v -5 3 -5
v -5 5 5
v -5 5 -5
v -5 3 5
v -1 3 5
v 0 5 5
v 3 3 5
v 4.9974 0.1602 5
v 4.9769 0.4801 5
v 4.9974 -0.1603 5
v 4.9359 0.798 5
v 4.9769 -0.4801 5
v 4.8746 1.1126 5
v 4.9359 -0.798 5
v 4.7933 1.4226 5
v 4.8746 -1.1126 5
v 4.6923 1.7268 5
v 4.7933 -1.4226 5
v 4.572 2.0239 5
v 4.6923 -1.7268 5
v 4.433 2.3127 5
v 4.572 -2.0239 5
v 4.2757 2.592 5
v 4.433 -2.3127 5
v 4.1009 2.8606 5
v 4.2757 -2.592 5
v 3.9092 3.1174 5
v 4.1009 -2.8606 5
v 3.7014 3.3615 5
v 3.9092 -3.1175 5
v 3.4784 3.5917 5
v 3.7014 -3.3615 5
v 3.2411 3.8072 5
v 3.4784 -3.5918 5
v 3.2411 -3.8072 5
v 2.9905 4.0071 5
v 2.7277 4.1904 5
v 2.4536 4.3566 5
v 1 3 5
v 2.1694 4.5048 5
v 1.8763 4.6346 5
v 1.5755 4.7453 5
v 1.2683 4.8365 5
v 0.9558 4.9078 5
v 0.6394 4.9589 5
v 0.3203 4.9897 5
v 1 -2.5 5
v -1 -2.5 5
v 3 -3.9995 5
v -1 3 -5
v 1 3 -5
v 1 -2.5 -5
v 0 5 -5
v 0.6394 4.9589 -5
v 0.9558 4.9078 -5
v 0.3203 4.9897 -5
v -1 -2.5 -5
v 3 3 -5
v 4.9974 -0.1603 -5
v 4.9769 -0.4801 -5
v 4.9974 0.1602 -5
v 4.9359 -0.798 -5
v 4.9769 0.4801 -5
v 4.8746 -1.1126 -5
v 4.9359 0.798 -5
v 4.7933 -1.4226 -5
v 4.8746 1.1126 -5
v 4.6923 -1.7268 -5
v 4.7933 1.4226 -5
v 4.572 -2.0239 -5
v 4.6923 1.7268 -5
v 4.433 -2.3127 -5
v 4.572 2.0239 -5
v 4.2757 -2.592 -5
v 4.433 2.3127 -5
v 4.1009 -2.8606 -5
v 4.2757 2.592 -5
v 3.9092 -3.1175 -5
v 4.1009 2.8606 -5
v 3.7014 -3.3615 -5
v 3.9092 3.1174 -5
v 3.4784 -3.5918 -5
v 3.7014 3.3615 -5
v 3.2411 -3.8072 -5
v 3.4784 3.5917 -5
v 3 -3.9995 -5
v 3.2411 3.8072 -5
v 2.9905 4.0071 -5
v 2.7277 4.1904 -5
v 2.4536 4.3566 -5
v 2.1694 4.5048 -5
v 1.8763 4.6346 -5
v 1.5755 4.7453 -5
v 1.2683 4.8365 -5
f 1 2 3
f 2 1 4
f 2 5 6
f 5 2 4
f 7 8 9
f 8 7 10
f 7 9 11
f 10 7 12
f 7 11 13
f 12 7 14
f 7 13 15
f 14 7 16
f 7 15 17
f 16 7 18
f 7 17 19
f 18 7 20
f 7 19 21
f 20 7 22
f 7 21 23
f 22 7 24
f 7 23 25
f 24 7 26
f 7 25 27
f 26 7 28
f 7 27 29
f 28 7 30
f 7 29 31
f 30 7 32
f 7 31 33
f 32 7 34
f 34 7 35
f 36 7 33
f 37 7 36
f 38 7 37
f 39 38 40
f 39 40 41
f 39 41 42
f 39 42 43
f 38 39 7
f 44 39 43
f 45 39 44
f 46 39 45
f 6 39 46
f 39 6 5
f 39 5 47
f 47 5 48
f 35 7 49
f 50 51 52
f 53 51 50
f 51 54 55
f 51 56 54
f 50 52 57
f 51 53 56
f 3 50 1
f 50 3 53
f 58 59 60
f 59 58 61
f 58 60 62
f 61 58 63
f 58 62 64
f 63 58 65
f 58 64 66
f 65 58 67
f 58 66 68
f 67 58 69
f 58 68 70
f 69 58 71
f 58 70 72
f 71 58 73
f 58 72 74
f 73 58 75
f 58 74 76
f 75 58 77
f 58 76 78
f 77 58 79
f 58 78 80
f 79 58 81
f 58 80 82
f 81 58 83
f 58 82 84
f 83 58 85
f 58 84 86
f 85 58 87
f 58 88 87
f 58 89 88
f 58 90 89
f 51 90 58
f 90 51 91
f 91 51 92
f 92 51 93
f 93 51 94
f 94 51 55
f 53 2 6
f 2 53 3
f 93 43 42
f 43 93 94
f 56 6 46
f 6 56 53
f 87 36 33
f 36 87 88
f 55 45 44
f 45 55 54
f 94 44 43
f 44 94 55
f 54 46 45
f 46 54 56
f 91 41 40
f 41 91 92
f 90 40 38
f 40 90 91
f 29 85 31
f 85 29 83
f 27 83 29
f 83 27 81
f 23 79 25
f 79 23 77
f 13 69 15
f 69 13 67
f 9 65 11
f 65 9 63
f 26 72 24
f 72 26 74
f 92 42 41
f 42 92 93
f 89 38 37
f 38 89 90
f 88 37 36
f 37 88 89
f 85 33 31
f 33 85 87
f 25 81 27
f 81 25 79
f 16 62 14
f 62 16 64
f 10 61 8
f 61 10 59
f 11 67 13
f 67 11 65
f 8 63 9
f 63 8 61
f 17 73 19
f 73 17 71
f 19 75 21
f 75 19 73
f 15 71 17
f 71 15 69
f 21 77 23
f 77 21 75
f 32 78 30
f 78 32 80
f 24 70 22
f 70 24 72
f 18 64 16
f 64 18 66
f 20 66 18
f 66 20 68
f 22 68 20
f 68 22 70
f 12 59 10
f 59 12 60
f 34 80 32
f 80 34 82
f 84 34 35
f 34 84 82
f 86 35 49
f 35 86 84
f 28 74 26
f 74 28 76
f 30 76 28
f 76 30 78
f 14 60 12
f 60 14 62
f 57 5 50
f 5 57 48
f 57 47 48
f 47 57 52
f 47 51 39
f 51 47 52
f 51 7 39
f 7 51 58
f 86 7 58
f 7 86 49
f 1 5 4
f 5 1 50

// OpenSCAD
// Generated by SolidPython 1.1.3 on 2025-02-20 04:04:07
$fn=50;


intersection() {
	translate(v = [-5.0000000000, -5.0000000000, -5.0000000000]) {
		linear_extrude(height = 10) {
			polygon(points = [[5.0000000000, 10.0000000000], [5.3203510999, 9.9897269638], [5.6393858084, 9.9589500691], [5.9557931435, 9.9077957850], [6.2682729195, 9.8364743152], [6.5755410901, 9.7452787351], [6.8763350244, 9.6345837867], [7.1694186956, 9.5048443395], [7.4535877600, 9.3565935206], [7.7276745061, 9.1904405245], [7.9905526525, 9.0070681093], [8.2411419765, 8.8072297918], [8.4784127530, 8.5917467505], [8.7013899854, 8.3615044513], [8.9091574123, 8.1174490093], [9.1008612730, 7.8605833006], [9.2757138150, 7.5919628416], [9.4329965319, 7.3126914512], [9.5720631151, 7.0239167156], [9.6923421102, 6.7268252721], [9.7933392652, 6.4226379332], [9.8746395609, 6.1126046698], [9.9359089171, 5.7979994752], [9.9768955647, 5.4801151295], [9.9974310810, 5.1602578879], [9.9974310810, 4.8397421121], [9.9768955647, 4.5198848705], [9.9359089171, 4.2020005248], [9.8746395609, 3.8873953302], [9.7933392652, 3.5773620668], [9.6923421102, 3.2731747279], [9.5720631151, 2.9760832844], [9.4329965319, 2.6873085488], [9.2757138150, 2.4080371584], [9.1008612730, 2.1394166994], [8.9091574123, 1.8825509907], [8.7013899854, 1.6384955487], [8.4784127530, 1.4082532495], [8.2411419765, 1.1927702082], [7.9905526525, 0.9929318907], [7.7276745061, 0.8095594755], [7.4535877600, 0.6434064794], [7.1694186956, 0.4951556605], [6.8763350244, 0.3654162133], [6.5755410901, 0.2547212649], [6.2682729195, 0.1635256848], [5.9557931435, 0.0922042150], [5.6393858084, 0.0410499309], [5.3203510999, 0.0102730362], [5.0000000000, 0.0000000000], [0, 0], [0, 10]]);
		}
	}
	rotate(a = -90, v = [0, 0, 1]) {
		translate(v = [-5.0000000000, -5.0000000000, -5.0000000000]) {
			linear_extrude(height = 10) {
				polygon(points = [[0, 0], [2.0000000000, 0], [2.0000000000, 4.0000000000], [7.5000000000, 4.0000000000], [7.5000000000, 6.0000000000], [2.0000000000, 6.0000000000], [2.0000000000, 8.0000000000], [10, 8.0000000000], [10, 10], [0, 10]]);
			}
		}
	}
}
/***********************************************
*********      SolidPython code:      **********
************************************************
 
from solid import *
from solid.utils import *

import math
import matplotlib.pyplot as plt
import subprocess
import os

class Hole:
    def __init__(self, x, y, radius):
        """
        Hole defined by:
        :param x: x dimension for center point of the circle as a ratio of letter height
        :param y: y dimension for center point of the circle as a ratio of letter height
        :param radius: radius of circle as a ratio of letter height
        """
        self.x = x
        self.y = y
        self.radius = radius

class Letter3D:
    def __init__(self, name, outer_shape_points, height, holes=None):
        """
        3D Letter defined by:
        :param name: name of letter
        :param outer_shape_points: points defining the outer shape of the letter
        :param heigh: size of cube that letter fits inside
        :param holes: list of Holes
        """
        self.name = name
        self.outer_shape_points = outer_shape_points
        self.holes = holes if holes is None else []
        self.height = height


    def generate(self):
        shape = polygon(points=self.outer_shape_points)

        if self.holes:
            for hole in self.holes:
                circle_hole = circle(r=hole.radius*self.height)
                positioned_hole = translate([hole.x*self.height, hole.y*self.height])(circle_hole)
                shape = difference()(shape, positioned_hole)
        
        shape_3d = linear_extrude(height=self.height)(shape)
        shape_3d = translate([-self.height/2, -self.height/2, -self.height/2])(shape_3d)
        return shape_3d
    
    def render(self):
        scad_render_to_file(self.shape, f"output/{self.name}.scad", file_header='$fn=50;')
        subprocess.run(["C:\\Program Files\\OpenSCAD\\openscad.exe", "-o", f"output\\{self.name}.stl", f"output\\{self.name}.scad"])


class TwoLetter3D:
    def __init__(self, height, letterA, letterA_face, letterB=None, letterB_face=None):
        self.height = height
        self.letterA = letterA
        self.letterB = letterB
        self.letterA_face = letterA_face
        self.letterB_face = letterB_face

    def call_letter_generation(self, letter):
        letter = letter.upper()
        function_name = f"letter_{letter}"
        func = globals().get(function_name)
        if func is None:
            raise ValueError(f"No letter generation function defined for letter '{letter}'.")
        else:
            print(func)
        return func(self.height)
    
    def rotate_object(self, face, shape):
        face = face.lower()
        if face == "z":
            return shape
        if face == "x":
            return rotate(a=90, v=[0,1,0])(shape)
        if face == "y":
            return rotate(a=-90, v=[0,0,1])(shape)
        else:
            raise ValueError("Face must be one of 'x', 'y', or 'z'.")

    def render(self):
        if self.letterA:
            letterA3D = self.call_letter_generation(self.letterA)
            letterA3D = self.rotate_object(self.letterA_face, letterA3D)

        if self.letterB:
            letterB3D = self.call_letter_generation(self.letterB)
            letterB3D = self.rotate_object(self.letterB_face, letterB3D)
            combined = intersection()(letterA3D, letterB3D)
            file_name = self.letterA + self.letterB
            scad_render_to_file(combined, f"output/{file_name}.scad", file_header='$fn=50;')
            subprocess.run(["C:\\Program Files\\OpenSCAD\\openscad.exe", "-o", f"output\\{file_name}.stl", f"output\\{file_name}.scad"])
            return
        else:
            file_name = self.letterA
            scad_render_to_file(letterA3D, f"output/{file_name}.scad", file_header='$fn=50;')
            subprocess.run(["C:\\Program Files\\OpenSCAD\\openscad.exe", "-o", f"output\\{file_name}.stl", f"output\\{file_name}.scad"])
    
                

def arc_points(radius, start_angle, end_angle, center=[0,0], num_points=50):
    angles = [start_angle + i * (end_angle - start_angle) / (num_points - 1)
              for i in range(num_points)]
    points = [
        (center[0] + radius * math.cos(math.radians(angle)),
         center[1] + radius * math.sin(math.radians(angle)))
        for angle in angles
    ]
    return points

def letter_A(h):
    shape_points = [(0,0), (h/2, h), (h, 0), (5/6*h, 0), (2/3*h, 1/3*h), (1/3*h, 1/3*h), (h/6, 0)]
    holes = [Hole(1/2, 7/12, 1/6)]
    A = Letter3D("A", shape_points, h, holes)
    return A.generate()

def letter_B(h):
    top_arc_points = arc_points(h/4, 90, -90, center=[3/4*h, 3/4*h])
    bottom_arc_points = arc_points(h/4, 90, -90, center=[3/4*h, h/4])
    other_points = [(0,0),(0,h)]

    shape_points = top_arc_points + bottom_arc_points + other_points
    holes = [Hole(1/2, 3/4, 1/6), Hole(1/2, 1/4, 1/6)]
    B = Letter3D("B", shape_points, h, holes)
    return B.generate()

def letter_C(h):
    outer_arc_points = arc_points(h/2, 30, 330, center=[h/2,h/2])
    inner_arc_points = arc_points(h/4, 30, 330, center=[h/2,h/2])[::-1]
    shape_points = outer_arc_points + inner_arc_points
    # print(shape_points)
    C = Letter3D("C", shape_points, h)
    return C.generate()


def letter_D(h):
    outer_arc_points = arc_points(h/2, 90, -90, center= [h/2, h/2])
    shape_points = outer_arc_points + [(0,0), (0, h)]
    holes = [Hole(1/2, 1/2, 1/6)]
    D = Letter3D("D", shape_points, h, holes)
    return D.generate()

def letter_E(h):
    points = [(0,0), (h,0), (h,h/5), (h/5,h/5), (h/5,2/5*h), (3/4*h,2/5*h), (3/4*h,3/5*h), (h/5,3/5*h), (h/5,4/5*h), (h,4/5*h), (h,h), (0,h)]
    E = Letter3D("E", points, h)
    return E.generate()

def letter_F(h):
    points = [(0,0), (h/5,0), (h/5,2/5*h), (3/4*h,2/5*h), (3/4*h,3/5*h), (h/5,3/5*h), (h/5,4/5*h), (h,4/5*h), (h,h), (0,h)]
    F = Letter3D("F", points, h)
    return F.generate()

if __name__ == "__main__":
    os.makedirs("output", exist_ok=True)
    
    letters = [chr(x) for x in range(ord('A'), ord('F') + 1)]
    for letter in letters:
        for other_letter in letters:
            shape = TwoLetter3D(10, letter, "z", other_letter, "y")
            shape.render()
 
 
************************************************/
